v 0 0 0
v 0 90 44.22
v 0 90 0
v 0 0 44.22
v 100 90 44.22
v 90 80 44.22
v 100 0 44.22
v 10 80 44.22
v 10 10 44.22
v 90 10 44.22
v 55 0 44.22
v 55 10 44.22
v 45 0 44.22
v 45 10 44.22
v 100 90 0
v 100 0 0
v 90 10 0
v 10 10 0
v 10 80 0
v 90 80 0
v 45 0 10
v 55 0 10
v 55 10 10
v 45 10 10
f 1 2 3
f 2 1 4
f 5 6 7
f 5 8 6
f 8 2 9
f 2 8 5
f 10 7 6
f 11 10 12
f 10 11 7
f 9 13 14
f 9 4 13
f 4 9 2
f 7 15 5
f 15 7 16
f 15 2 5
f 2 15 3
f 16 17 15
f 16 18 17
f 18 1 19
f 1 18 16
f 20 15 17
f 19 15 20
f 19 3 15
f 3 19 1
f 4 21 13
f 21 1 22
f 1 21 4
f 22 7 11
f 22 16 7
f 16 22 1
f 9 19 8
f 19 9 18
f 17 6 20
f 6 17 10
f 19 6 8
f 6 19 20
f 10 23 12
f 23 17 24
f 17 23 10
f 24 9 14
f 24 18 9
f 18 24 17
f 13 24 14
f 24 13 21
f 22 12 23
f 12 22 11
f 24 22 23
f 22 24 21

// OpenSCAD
module body() {
    color("Red") cube([100,90,44.22]); 
}

module innerFrame() {
    color("Red") cube([80,70,60]); 
}

module smallFrame() {
    color("Red") cube([10,20,60]);     
}

module bushing() {
    cylinder (h = 23.31, r=12.5, center = true, $fn=100);    
}

module box() {
    color("grey") cube([90.33,120,160.4]); 
}
module completeBox() {
    union(){
        box();
        translate([30,60,-11.65]) bushing();
    }
}
module zip() {
    color("black") cube([2,60,160.4]);    
}


module boxes() {
     union(){         
         mirror([1,0,0]) translate([-90.33,0,0]) completeBox();
         translate([90.33,30,0]) zip();
         mirror([1,0,0]) translate([-182.66,0,0]) completeBox();
         translate([182.66,30,0]) zip();
         translate([184.66,0,0]) completeBox();         
     }
}


module base(){
    difference() {
    body();
    translate([10,10,-5]) innerFrame();
    translate([45,-5,10]) smallFrame();
    }    
}


//translate([15,9,0])
base();

//translate([169.99,9,0])
//base();

//translate([0,0,44.22])
//translate([0,0,50])
//boxes();
